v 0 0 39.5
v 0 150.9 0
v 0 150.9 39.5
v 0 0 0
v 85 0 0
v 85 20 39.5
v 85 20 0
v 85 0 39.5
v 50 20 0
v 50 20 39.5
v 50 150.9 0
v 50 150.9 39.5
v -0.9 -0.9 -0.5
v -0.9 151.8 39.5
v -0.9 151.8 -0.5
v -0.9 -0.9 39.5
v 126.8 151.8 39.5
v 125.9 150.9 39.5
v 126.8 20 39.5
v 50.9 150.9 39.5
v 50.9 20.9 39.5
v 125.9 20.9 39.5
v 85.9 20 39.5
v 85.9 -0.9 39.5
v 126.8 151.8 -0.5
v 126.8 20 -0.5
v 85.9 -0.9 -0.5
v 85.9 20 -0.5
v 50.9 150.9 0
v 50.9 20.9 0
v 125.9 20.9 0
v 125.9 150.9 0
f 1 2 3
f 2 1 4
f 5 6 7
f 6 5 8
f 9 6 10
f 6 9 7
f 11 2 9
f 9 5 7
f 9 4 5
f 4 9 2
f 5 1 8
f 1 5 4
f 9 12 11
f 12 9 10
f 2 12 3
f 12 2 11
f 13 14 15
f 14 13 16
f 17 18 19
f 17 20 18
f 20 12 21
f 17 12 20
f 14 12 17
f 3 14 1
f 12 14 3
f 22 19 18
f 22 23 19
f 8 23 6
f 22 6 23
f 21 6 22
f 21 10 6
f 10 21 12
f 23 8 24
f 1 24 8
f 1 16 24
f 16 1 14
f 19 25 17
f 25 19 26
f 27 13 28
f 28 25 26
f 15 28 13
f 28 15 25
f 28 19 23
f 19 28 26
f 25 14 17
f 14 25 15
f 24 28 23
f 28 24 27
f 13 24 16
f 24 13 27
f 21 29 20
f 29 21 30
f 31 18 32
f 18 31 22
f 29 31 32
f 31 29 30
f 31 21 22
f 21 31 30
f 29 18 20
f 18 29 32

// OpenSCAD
first_layer_height = 0.20;
layer_height = 0.15;
layer_width = 0.45;

$fn = 64;

wall_thickness = 2*layer_width;
bottom_thickness = first_layer_height + 2*layer_height;
height = 40;

module charger() {
    width = 75;
    depth = 130;
    cube([width,depth,height]);
}

module powersupply() {
    // plug
    pwidth = 85;
    pdepth = 20;    
    cube([pwidth,pdepth,height]);
    
    // body
    bwidth = 50;
    bdepth = 80;
    cube([bwidth,bdepth,height]);

    // cable
    cwidth = 50;
    cdepth = 75;
    translate([0,cdepth+wall_thickness,0])
    cube([cwidth,cdepth,height]);
}

module walls() {
    width = 75 + 50 + 3*wall_thickness;
    depth = 130 + 2*wall_thickness;
     
    translate([-wall_thickness,20,-bottom_thickness])  
    cube([width, depth, height]);
    
    topwidth = 85 + 2*wall_thickness;
    topdepth = 20 + 2*wall_thickness;
    translate([-wall_thickness,-wall_thickness,-bottom_thickness])
    cube([topwidth, topdepth, height]);
}

difference() {
  walls();

  // just roughly model the things to store
  translate([50+wall_thickness,20+wall_thickness,0])
  charger();
  powersupply();
}
